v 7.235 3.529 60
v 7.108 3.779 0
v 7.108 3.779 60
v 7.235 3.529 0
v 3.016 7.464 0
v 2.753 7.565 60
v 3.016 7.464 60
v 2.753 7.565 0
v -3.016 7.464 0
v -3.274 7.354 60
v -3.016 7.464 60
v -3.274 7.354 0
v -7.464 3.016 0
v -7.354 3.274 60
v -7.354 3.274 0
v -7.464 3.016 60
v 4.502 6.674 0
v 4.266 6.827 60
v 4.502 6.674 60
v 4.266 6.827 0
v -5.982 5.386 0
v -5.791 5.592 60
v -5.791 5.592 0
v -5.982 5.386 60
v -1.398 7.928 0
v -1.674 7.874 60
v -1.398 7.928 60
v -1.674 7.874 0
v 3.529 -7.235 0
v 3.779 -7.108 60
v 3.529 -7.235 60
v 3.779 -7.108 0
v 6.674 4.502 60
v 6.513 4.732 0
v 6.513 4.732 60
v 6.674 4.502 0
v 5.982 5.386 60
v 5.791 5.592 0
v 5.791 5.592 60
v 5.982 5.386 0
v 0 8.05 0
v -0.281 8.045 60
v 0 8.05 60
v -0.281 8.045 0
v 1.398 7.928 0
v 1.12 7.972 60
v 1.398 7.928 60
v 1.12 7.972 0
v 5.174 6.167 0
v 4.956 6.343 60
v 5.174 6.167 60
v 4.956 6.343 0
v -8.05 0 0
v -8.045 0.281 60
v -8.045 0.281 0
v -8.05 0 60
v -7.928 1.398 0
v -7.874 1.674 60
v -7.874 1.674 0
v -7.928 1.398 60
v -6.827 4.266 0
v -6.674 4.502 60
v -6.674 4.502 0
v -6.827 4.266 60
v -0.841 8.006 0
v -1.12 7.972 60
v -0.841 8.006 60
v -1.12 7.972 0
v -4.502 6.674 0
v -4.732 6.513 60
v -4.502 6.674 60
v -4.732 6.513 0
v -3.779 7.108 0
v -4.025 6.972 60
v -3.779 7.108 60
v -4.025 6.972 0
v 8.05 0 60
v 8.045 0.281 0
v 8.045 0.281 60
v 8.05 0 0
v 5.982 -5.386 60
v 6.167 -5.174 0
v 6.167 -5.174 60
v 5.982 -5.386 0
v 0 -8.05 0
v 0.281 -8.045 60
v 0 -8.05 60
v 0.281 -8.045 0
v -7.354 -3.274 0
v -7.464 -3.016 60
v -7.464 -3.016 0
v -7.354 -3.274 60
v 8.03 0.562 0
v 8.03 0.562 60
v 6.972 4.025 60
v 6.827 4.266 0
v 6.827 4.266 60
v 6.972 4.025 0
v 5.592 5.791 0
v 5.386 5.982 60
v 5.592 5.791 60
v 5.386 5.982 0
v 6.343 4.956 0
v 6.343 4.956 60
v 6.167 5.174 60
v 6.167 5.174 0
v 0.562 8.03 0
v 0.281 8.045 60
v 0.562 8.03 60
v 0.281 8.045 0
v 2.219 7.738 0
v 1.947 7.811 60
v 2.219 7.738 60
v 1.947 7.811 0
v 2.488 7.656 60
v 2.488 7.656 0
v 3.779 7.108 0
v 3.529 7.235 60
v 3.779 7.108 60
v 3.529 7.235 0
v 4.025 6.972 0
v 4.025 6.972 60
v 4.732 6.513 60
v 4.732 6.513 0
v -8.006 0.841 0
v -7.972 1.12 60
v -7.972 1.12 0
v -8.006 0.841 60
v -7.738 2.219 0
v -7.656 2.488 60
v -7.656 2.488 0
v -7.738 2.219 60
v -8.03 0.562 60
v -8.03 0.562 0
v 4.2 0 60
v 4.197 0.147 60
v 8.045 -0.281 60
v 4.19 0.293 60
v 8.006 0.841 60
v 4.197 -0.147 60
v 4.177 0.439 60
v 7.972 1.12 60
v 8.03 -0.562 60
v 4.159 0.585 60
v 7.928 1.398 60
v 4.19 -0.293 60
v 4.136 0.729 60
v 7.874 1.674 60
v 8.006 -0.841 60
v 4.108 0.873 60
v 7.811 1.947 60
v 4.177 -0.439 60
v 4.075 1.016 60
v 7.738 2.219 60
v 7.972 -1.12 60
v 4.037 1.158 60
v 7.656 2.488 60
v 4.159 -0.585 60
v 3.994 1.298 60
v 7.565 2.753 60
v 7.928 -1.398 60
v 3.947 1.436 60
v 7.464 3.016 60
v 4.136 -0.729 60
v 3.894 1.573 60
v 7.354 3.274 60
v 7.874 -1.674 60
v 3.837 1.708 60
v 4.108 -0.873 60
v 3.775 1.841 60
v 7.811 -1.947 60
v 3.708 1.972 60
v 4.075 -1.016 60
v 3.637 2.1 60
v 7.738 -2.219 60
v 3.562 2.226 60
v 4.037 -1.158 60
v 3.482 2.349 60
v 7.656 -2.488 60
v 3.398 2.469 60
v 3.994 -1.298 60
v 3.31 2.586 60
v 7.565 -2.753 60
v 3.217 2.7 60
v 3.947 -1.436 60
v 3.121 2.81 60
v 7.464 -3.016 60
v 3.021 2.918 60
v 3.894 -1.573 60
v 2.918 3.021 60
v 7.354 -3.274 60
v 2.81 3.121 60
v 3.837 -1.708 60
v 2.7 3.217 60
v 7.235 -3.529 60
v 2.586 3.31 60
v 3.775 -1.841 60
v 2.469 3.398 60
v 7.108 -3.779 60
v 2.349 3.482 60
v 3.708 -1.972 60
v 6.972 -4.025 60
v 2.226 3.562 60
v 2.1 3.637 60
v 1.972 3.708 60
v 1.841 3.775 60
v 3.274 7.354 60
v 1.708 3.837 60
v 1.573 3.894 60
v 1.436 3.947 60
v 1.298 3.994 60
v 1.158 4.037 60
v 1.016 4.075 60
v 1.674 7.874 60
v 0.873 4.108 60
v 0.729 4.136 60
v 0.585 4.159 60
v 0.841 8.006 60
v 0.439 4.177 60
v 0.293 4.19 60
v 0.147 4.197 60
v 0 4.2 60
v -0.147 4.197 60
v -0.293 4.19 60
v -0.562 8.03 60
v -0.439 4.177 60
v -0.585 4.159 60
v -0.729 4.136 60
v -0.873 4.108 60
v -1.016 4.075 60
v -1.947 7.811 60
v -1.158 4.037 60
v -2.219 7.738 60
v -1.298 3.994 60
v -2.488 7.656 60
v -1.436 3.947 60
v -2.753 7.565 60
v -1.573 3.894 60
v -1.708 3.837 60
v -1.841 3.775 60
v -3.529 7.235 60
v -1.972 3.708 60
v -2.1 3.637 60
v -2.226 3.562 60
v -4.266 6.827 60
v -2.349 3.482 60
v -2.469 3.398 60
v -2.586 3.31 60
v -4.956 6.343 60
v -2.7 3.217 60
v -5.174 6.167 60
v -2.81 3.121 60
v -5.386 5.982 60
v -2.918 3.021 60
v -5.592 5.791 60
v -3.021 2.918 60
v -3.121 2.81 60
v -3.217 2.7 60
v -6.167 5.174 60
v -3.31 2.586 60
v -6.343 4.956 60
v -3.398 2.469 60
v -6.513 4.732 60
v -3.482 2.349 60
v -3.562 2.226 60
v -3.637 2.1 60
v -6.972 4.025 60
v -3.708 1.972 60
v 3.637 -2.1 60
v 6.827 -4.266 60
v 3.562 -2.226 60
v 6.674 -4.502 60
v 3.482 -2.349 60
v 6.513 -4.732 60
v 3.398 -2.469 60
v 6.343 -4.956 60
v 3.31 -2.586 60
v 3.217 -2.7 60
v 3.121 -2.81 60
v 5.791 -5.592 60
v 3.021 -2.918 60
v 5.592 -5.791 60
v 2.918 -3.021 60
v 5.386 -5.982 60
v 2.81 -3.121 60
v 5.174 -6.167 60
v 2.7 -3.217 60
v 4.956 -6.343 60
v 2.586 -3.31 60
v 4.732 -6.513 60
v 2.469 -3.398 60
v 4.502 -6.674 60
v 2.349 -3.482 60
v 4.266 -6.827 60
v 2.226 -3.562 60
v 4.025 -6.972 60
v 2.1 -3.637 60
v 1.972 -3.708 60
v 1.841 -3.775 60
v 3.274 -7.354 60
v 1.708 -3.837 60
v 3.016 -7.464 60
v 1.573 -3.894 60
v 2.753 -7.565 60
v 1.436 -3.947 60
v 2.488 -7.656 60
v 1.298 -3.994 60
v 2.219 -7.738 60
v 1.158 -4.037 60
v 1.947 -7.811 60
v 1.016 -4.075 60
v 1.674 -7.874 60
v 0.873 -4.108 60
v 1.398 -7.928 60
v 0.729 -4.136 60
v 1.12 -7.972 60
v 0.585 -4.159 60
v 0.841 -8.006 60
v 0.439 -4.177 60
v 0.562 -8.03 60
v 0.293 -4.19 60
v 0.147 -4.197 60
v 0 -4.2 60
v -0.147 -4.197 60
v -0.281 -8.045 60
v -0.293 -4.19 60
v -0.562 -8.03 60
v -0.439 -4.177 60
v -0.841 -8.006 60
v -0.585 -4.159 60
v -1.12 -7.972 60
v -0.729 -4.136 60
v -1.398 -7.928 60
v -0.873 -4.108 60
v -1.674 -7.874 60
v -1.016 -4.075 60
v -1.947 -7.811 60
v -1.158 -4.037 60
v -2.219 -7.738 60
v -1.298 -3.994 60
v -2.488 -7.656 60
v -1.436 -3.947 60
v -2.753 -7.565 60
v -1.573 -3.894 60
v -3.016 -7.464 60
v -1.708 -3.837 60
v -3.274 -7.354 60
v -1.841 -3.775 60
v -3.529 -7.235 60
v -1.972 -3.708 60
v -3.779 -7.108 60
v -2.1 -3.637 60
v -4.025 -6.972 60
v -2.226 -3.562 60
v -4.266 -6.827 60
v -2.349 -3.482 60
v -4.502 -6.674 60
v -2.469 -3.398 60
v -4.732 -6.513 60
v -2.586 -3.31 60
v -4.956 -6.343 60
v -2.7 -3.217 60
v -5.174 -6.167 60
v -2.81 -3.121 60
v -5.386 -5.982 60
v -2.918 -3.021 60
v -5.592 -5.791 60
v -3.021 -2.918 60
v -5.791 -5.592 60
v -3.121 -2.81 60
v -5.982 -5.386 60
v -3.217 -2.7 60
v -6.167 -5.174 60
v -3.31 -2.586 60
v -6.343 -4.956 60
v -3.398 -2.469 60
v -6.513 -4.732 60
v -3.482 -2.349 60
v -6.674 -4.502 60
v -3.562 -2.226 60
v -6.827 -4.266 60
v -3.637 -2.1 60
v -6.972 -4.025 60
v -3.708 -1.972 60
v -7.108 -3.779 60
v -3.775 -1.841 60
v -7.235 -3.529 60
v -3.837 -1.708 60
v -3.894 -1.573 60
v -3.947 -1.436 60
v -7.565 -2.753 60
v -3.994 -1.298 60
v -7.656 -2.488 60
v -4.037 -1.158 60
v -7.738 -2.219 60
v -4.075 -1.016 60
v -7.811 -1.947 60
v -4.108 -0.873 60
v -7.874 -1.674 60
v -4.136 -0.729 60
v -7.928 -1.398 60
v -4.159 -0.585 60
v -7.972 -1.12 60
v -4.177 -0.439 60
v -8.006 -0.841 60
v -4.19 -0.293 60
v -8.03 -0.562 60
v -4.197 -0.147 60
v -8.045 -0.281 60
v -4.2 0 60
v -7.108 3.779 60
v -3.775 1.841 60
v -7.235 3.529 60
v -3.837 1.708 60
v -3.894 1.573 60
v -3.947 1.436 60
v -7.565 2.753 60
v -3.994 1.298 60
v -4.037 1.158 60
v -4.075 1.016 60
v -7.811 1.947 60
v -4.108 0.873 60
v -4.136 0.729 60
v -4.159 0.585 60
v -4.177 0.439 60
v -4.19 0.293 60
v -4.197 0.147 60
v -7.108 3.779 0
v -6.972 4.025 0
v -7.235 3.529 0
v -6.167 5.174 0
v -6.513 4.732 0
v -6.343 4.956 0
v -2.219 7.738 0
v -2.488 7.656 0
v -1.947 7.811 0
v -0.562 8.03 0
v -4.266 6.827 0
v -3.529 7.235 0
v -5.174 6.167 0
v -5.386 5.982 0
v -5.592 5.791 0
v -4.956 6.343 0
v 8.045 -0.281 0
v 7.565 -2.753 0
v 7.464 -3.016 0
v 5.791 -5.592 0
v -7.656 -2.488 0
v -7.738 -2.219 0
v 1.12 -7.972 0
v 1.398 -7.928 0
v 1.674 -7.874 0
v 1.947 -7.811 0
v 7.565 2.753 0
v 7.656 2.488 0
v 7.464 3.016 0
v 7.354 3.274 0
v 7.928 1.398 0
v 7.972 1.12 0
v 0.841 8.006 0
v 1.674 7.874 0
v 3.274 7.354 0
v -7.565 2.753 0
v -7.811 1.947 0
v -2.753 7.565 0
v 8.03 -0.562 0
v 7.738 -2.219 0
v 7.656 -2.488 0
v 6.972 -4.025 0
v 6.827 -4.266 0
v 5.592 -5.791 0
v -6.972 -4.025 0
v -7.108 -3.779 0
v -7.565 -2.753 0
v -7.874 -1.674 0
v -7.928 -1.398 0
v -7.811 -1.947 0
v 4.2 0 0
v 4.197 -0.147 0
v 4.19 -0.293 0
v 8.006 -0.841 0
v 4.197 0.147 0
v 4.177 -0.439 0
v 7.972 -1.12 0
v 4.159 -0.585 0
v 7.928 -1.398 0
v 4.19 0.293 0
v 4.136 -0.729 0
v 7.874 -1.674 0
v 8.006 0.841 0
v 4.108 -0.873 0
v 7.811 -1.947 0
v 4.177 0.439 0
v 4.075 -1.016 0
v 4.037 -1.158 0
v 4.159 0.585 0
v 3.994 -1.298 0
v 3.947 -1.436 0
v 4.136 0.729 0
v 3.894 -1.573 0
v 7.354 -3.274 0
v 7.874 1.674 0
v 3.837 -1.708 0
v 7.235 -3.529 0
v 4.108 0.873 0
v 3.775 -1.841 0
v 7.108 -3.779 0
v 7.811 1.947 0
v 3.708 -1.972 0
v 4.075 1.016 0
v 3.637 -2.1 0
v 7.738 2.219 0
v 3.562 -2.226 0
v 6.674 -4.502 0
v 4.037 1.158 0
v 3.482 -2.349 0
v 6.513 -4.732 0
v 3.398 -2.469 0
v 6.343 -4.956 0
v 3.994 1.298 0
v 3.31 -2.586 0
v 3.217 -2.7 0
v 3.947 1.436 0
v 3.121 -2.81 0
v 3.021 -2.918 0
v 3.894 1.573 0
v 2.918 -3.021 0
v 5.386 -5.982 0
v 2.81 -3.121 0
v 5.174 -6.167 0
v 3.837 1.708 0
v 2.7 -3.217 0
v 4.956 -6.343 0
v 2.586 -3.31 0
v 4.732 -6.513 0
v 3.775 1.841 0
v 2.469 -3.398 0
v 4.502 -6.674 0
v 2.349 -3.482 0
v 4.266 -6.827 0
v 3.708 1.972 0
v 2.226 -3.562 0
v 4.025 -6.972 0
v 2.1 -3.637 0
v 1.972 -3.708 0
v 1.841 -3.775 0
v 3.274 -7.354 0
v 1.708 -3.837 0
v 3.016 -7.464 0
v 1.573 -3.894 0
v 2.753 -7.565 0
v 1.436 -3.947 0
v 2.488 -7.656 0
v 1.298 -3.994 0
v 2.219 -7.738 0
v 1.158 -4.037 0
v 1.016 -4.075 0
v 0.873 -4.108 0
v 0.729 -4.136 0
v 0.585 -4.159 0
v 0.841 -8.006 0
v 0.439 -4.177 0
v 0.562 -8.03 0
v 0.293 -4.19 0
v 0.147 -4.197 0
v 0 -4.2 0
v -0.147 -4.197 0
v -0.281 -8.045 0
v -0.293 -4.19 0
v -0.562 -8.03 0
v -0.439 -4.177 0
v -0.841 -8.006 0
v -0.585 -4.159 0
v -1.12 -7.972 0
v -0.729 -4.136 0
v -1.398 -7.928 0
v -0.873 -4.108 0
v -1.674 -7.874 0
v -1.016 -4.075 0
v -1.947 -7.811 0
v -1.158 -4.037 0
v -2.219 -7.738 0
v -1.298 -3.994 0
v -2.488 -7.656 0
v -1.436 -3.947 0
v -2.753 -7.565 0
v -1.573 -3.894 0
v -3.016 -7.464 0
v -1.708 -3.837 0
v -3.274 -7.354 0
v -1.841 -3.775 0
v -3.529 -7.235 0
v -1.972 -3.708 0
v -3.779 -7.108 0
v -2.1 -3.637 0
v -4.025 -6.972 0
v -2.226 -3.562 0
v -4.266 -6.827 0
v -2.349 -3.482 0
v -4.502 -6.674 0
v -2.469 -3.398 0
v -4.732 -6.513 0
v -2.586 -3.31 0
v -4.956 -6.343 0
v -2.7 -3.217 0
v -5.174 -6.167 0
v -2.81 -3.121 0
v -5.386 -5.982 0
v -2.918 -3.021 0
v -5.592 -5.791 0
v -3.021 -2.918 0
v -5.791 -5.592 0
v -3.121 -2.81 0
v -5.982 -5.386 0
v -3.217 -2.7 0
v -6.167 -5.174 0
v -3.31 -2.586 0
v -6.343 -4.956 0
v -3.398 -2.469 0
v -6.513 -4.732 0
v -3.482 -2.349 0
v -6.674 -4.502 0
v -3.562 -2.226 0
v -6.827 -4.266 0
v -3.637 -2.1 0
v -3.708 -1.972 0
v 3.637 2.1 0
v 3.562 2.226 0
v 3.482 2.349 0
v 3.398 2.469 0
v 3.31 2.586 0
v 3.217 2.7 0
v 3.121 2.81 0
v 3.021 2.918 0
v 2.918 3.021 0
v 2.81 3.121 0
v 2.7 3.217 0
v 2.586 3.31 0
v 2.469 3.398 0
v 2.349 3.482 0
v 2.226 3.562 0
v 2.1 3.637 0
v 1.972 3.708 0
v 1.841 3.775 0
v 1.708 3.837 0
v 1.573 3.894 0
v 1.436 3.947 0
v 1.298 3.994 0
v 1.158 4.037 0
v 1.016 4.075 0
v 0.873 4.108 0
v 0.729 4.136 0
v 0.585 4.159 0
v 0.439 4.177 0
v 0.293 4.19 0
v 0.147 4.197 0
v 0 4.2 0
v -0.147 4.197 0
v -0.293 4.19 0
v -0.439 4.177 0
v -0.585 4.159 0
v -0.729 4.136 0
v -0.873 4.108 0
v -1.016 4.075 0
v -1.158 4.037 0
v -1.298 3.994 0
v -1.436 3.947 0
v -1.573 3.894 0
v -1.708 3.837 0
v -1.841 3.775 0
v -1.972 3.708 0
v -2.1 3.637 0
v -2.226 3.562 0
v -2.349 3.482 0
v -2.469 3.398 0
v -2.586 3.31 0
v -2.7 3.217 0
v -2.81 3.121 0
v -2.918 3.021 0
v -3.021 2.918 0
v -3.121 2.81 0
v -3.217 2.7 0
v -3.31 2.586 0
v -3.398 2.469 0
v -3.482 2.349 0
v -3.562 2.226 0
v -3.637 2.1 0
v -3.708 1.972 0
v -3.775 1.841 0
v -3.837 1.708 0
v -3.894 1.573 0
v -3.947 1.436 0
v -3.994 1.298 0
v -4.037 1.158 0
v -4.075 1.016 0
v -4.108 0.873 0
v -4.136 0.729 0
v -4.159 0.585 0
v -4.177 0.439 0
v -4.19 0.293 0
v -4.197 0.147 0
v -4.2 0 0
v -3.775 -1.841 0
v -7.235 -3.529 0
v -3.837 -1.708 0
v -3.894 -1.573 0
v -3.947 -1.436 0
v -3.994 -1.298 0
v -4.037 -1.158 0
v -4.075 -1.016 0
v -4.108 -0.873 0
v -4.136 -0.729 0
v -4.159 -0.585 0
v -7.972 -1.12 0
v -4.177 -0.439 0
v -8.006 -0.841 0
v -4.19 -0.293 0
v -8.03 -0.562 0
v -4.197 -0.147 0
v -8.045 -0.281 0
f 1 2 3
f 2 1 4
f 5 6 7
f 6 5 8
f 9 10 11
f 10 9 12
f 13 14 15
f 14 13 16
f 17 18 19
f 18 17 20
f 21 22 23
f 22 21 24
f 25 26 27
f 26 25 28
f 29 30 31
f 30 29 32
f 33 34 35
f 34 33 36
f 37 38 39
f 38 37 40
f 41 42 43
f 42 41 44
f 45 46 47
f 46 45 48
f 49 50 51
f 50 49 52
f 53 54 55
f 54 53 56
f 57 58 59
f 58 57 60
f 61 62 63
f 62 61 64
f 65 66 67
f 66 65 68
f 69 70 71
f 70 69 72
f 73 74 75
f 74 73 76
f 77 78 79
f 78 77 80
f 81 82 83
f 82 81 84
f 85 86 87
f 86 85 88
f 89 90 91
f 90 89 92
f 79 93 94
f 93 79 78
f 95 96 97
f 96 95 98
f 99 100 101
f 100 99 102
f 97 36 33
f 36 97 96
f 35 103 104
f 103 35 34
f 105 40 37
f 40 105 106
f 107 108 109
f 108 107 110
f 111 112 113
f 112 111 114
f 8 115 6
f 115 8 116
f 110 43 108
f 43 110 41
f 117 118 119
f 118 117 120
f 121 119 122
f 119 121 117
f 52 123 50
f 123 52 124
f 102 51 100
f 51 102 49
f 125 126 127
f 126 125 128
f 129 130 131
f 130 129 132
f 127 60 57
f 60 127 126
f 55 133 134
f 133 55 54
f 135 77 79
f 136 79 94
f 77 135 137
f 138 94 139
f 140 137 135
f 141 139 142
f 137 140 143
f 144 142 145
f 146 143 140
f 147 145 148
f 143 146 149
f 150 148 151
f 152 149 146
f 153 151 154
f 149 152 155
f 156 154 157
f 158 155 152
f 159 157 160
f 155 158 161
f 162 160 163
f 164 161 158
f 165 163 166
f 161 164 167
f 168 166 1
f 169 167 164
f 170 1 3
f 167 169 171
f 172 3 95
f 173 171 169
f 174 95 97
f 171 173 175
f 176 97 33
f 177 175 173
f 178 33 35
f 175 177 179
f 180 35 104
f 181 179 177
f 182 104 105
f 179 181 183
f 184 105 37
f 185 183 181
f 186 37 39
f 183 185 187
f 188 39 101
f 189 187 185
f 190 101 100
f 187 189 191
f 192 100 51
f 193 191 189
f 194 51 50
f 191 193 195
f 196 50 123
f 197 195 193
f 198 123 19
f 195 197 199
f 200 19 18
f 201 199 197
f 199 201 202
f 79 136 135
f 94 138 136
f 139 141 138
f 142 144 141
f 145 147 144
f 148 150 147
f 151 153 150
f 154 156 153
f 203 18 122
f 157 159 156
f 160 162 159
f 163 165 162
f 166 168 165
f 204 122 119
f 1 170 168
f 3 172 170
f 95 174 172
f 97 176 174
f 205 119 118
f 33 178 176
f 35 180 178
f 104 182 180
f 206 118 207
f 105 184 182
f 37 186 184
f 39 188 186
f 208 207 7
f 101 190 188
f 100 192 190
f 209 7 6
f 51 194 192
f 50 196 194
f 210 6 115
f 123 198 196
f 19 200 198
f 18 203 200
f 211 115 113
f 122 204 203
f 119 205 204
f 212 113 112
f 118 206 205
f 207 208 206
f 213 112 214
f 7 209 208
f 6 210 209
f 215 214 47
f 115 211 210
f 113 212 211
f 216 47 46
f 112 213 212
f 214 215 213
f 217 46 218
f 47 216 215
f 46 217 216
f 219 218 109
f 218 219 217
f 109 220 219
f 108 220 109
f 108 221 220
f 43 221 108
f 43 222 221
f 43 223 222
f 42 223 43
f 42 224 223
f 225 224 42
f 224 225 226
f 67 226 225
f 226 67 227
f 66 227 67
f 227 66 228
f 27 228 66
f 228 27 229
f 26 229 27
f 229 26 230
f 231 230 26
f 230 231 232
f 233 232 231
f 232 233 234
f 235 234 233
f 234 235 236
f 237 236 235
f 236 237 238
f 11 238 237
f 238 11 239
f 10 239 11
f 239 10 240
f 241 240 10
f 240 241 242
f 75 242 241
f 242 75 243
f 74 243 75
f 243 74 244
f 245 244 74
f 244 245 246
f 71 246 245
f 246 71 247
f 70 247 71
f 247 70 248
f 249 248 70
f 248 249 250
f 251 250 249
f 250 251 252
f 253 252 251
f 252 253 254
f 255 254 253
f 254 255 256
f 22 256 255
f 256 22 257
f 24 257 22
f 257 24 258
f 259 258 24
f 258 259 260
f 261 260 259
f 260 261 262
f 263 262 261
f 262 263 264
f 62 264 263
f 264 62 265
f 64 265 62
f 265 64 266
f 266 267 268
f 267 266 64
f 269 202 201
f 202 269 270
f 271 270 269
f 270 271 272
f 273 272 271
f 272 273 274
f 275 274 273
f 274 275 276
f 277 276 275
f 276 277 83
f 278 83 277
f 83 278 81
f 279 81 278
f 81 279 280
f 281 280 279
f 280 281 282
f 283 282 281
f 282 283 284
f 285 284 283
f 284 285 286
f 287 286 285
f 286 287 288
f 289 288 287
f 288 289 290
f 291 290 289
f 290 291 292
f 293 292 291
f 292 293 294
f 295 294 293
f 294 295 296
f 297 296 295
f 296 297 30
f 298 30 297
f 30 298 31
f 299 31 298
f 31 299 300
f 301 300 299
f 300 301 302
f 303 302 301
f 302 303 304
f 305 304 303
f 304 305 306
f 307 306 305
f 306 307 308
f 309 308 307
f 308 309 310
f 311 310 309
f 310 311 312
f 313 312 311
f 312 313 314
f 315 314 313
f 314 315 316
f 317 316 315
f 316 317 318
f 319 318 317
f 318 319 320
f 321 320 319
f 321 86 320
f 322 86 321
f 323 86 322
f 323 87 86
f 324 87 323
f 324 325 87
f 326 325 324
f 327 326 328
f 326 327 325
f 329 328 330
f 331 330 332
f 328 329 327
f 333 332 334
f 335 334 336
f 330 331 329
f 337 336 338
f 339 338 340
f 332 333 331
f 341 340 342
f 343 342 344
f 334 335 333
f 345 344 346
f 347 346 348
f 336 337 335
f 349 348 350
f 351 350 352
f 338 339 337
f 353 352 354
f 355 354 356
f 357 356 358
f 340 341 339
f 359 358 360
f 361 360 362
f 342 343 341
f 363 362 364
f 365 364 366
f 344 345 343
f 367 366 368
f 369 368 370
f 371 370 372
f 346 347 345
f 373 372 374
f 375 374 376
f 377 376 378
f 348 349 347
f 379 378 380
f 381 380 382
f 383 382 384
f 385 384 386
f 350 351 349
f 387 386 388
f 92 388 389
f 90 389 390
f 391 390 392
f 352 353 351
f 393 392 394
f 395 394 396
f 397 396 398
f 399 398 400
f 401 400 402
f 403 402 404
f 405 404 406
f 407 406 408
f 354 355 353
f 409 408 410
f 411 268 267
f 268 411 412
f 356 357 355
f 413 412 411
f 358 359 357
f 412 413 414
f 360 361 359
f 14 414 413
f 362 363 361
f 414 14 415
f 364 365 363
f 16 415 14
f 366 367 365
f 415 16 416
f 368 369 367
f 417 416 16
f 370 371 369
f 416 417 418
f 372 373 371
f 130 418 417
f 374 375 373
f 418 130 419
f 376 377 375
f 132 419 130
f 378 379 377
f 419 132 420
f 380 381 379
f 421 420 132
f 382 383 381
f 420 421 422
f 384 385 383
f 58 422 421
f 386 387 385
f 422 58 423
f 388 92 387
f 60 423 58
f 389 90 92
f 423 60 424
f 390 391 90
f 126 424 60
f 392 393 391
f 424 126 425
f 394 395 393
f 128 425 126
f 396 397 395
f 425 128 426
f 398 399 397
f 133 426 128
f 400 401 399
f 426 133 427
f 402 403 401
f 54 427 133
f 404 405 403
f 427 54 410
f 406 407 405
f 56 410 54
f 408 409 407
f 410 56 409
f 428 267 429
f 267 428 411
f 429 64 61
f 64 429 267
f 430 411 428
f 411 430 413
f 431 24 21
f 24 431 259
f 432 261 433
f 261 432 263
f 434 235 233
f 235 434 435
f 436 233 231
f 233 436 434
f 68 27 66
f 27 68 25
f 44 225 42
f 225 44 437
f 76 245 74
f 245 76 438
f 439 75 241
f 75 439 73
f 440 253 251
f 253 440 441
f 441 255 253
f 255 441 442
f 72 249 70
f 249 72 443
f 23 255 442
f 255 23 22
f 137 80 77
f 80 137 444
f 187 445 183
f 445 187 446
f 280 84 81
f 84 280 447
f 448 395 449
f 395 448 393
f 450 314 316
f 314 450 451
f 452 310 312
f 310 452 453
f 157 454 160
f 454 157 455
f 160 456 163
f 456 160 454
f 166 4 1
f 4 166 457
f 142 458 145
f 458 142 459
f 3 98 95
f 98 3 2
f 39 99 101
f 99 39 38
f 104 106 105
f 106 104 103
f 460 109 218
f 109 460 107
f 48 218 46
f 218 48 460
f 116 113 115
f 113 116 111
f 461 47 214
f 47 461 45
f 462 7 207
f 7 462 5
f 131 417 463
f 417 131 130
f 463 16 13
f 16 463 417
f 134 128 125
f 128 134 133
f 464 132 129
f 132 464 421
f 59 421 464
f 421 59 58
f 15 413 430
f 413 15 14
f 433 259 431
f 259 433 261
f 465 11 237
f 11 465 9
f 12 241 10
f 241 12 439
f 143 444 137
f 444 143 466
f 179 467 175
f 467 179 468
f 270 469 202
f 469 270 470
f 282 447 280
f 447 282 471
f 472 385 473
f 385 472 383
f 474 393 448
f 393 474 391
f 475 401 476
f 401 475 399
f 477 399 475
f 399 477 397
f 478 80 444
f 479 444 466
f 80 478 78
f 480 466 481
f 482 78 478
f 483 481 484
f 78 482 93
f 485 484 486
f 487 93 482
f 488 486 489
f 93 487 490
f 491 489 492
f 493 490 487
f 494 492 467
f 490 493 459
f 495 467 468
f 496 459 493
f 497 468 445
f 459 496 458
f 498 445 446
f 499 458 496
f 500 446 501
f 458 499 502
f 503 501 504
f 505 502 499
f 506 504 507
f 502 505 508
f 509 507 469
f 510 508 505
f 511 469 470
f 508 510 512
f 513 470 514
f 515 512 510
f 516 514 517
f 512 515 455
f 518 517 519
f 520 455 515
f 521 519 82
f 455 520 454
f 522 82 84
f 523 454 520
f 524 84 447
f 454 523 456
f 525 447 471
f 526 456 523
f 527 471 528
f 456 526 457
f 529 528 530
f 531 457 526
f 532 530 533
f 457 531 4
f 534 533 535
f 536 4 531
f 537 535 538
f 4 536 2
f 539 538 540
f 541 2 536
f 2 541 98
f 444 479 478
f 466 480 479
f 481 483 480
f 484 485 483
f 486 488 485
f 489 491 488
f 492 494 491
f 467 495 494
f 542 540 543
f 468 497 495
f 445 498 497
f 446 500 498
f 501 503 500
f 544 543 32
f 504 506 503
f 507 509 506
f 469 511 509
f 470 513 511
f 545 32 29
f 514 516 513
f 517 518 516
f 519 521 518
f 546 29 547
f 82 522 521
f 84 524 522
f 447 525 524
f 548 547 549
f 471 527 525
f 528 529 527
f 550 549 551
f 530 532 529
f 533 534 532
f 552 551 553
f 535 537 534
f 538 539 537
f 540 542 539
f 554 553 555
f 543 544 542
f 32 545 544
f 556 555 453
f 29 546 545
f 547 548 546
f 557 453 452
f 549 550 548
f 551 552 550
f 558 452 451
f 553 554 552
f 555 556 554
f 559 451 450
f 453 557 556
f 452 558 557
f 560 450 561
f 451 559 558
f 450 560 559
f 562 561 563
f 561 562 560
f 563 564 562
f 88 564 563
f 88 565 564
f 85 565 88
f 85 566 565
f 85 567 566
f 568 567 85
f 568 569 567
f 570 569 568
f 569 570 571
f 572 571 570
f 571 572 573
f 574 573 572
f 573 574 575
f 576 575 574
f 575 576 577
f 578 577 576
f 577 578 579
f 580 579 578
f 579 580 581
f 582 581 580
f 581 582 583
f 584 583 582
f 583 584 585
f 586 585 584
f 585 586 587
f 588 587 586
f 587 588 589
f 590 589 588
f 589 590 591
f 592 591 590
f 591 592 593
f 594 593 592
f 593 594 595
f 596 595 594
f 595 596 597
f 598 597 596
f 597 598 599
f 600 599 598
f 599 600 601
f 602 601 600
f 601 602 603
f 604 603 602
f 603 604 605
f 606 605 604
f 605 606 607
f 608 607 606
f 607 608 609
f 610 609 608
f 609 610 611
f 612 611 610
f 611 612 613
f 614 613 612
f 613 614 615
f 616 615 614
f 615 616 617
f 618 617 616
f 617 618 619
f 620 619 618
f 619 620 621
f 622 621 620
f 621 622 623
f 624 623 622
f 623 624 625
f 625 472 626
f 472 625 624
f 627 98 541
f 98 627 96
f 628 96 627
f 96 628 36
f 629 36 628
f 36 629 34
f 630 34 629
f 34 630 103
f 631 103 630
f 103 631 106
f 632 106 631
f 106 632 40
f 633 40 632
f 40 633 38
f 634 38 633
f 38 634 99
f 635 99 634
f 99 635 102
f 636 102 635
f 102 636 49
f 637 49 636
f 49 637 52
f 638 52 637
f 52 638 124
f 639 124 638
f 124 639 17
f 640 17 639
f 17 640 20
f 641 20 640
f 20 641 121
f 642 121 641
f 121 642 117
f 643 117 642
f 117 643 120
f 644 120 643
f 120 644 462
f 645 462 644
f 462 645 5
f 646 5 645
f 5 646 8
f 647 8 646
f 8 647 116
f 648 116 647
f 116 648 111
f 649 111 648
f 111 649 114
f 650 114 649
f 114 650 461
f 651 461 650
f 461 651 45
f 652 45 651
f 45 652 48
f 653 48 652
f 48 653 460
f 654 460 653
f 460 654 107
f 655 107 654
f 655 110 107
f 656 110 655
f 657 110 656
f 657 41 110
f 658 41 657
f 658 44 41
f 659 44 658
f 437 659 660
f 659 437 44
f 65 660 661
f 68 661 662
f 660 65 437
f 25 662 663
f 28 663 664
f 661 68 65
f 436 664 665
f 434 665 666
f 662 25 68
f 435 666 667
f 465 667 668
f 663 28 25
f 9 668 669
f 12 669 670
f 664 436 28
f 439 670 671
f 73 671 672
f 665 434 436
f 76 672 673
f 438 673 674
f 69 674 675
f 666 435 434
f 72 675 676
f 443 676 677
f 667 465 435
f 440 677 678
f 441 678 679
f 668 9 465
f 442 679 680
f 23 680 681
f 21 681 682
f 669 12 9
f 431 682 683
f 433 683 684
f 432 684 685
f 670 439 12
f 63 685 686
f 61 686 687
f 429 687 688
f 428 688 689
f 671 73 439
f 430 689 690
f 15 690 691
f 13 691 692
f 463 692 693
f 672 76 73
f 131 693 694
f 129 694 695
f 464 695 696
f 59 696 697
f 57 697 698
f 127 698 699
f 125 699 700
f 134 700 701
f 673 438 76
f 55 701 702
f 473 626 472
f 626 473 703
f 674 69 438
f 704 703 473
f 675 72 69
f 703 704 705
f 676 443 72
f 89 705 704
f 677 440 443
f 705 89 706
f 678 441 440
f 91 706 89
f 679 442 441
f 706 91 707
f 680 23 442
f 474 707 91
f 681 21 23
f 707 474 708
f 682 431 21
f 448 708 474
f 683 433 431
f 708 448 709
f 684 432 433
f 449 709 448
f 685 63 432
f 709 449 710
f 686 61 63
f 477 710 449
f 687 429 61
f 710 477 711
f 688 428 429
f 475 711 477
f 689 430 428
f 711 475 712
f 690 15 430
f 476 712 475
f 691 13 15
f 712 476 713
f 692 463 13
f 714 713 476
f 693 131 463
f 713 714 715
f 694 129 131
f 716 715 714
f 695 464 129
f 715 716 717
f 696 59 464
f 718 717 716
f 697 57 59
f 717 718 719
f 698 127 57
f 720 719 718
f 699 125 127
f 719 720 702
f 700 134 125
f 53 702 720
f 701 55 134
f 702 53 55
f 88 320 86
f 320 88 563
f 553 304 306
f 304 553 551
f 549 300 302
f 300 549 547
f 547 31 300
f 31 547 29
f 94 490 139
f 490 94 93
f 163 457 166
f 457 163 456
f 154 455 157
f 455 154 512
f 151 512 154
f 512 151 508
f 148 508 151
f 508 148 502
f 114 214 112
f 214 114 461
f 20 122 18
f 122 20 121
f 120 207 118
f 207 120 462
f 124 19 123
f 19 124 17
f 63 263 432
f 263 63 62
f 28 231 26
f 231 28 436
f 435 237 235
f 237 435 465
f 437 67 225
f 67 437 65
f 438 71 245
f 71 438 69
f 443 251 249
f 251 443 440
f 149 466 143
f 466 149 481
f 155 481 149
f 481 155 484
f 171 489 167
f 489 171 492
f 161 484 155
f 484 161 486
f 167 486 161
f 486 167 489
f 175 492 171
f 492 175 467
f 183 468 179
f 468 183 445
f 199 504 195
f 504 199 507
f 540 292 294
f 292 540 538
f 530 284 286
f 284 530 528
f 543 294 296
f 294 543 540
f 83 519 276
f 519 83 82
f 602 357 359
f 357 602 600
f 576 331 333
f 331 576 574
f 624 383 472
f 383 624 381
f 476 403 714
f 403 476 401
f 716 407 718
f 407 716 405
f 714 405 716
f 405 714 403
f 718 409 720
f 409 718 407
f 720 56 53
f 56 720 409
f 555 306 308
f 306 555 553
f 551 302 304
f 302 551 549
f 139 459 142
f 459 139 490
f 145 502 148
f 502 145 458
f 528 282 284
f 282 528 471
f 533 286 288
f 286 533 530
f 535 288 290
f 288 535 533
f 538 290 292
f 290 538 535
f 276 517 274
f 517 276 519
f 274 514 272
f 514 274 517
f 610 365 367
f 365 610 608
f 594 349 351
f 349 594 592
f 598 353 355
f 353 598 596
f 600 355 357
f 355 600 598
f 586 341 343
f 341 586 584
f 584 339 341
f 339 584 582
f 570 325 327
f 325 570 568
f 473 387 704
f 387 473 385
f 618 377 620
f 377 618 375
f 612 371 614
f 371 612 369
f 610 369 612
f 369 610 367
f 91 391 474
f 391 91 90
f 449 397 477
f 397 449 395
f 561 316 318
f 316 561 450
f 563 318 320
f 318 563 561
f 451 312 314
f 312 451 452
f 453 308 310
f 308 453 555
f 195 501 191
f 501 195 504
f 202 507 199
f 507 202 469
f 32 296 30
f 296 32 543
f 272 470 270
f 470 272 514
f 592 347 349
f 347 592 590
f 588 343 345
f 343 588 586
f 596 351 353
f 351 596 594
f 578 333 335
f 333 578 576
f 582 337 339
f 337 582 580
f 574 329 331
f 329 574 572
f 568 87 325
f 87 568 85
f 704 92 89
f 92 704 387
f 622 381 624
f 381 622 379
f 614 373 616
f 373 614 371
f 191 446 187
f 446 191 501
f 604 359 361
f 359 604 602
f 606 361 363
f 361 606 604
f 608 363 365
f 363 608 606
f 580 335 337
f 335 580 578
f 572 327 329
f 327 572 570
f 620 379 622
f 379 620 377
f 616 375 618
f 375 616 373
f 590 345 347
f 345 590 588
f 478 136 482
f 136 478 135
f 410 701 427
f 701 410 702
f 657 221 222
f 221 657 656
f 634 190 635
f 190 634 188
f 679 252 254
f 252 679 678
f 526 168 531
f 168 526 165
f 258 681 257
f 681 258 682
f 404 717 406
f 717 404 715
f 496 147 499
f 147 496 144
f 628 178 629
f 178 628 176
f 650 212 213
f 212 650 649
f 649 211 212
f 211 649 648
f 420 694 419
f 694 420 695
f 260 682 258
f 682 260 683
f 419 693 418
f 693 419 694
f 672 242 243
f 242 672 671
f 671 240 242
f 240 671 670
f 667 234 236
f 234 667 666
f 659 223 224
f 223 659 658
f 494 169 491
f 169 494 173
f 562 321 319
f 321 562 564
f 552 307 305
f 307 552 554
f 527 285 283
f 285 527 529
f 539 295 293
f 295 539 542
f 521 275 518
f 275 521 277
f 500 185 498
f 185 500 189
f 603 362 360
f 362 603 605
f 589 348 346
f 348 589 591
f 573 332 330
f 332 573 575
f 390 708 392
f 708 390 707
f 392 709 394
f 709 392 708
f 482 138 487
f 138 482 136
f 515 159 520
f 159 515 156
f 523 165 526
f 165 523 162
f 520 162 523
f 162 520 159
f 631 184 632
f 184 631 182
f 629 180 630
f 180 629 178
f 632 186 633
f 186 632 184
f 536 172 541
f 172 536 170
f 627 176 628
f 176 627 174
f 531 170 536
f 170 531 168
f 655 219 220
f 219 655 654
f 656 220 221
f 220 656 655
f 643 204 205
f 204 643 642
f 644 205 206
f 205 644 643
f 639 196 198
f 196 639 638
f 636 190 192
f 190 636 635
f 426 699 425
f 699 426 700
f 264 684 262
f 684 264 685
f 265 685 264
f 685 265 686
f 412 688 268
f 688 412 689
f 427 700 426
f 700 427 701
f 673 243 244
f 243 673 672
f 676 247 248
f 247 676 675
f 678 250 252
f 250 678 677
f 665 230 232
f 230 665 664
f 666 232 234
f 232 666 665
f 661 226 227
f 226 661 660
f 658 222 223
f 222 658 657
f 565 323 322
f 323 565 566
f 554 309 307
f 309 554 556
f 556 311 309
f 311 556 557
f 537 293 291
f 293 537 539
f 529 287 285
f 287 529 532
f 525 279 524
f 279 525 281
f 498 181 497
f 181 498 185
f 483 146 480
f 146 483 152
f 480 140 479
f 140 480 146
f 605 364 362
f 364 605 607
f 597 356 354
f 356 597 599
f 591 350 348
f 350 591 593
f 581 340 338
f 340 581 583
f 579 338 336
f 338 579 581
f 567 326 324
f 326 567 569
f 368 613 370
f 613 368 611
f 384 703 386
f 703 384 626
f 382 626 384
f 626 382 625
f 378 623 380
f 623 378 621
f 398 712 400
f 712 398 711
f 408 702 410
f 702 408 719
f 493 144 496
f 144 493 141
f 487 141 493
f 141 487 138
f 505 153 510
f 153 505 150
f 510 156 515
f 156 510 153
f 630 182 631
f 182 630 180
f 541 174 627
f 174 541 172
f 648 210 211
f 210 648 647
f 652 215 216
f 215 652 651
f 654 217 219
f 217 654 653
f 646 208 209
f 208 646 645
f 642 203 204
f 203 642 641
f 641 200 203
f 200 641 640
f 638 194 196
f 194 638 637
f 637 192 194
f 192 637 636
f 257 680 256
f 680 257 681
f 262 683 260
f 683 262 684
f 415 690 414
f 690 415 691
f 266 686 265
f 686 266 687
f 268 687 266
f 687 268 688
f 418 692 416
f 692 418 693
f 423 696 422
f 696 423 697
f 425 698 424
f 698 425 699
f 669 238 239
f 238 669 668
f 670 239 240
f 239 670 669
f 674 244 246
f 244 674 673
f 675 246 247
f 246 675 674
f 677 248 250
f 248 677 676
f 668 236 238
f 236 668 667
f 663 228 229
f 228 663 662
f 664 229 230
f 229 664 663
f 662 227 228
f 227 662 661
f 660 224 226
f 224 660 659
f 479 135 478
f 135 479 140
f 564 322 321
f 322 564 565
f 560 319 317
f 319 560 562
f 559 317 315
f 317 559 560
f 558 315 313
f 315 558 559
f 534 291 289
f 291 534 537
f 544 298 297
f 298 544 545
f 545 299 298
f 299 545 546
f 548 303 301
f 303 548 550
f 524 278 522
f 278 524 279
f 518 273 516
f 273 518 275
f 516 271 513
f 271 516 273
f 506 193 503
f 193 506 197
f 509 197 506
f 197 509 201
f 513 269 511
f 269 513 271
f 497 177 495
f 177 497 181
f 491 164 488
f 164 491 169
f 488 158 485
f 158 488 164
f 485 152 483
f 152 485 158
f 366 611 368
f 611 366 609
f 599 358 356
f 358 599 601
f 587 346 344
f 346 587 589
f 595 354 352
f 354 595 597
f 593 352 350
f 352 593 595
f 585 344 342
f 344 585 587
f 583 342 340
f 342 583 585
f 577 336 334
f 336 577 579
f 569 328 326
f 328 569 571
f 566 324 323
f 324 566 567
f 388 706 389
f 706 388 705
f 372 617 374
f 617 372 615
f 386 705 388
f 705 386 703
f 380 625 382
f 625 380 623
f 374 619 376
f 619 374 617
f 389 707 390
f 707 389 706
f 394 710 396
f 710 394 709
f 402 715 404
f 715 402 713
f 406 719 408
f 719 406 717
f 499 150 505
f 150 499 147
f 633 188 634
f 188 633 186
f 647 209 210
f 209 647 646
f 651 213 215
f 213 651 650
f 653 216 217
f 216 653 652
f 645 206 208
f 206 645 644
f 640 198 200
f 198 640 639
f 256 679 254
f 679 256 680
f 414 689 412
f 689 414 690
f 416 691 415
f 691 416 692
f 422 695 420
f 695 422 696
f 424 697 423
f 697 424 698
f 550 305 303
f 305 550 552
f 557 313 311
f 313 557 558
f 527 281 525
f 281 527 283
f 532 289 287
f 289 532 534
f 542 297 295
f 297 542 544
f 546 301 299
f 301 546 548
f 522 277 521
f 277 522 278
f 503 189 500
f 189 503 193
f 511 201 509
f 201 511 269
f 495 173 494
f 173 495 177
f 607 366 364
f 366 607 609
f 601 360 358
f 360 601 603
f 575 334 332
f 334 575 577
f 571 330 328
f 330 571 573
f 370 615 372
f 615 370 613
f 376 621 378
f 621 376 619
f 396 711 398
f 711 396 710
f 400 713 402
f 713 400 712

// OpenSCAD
difference() {
    color("red")
	cylinder(h=60,r=(16.5-0.4)/2,$fn=180);
    
    color("green")
	translate([0,0,-1])
	cylinder(h=60+2,r=(8.0+0.4)/2,$fn=180);
}
